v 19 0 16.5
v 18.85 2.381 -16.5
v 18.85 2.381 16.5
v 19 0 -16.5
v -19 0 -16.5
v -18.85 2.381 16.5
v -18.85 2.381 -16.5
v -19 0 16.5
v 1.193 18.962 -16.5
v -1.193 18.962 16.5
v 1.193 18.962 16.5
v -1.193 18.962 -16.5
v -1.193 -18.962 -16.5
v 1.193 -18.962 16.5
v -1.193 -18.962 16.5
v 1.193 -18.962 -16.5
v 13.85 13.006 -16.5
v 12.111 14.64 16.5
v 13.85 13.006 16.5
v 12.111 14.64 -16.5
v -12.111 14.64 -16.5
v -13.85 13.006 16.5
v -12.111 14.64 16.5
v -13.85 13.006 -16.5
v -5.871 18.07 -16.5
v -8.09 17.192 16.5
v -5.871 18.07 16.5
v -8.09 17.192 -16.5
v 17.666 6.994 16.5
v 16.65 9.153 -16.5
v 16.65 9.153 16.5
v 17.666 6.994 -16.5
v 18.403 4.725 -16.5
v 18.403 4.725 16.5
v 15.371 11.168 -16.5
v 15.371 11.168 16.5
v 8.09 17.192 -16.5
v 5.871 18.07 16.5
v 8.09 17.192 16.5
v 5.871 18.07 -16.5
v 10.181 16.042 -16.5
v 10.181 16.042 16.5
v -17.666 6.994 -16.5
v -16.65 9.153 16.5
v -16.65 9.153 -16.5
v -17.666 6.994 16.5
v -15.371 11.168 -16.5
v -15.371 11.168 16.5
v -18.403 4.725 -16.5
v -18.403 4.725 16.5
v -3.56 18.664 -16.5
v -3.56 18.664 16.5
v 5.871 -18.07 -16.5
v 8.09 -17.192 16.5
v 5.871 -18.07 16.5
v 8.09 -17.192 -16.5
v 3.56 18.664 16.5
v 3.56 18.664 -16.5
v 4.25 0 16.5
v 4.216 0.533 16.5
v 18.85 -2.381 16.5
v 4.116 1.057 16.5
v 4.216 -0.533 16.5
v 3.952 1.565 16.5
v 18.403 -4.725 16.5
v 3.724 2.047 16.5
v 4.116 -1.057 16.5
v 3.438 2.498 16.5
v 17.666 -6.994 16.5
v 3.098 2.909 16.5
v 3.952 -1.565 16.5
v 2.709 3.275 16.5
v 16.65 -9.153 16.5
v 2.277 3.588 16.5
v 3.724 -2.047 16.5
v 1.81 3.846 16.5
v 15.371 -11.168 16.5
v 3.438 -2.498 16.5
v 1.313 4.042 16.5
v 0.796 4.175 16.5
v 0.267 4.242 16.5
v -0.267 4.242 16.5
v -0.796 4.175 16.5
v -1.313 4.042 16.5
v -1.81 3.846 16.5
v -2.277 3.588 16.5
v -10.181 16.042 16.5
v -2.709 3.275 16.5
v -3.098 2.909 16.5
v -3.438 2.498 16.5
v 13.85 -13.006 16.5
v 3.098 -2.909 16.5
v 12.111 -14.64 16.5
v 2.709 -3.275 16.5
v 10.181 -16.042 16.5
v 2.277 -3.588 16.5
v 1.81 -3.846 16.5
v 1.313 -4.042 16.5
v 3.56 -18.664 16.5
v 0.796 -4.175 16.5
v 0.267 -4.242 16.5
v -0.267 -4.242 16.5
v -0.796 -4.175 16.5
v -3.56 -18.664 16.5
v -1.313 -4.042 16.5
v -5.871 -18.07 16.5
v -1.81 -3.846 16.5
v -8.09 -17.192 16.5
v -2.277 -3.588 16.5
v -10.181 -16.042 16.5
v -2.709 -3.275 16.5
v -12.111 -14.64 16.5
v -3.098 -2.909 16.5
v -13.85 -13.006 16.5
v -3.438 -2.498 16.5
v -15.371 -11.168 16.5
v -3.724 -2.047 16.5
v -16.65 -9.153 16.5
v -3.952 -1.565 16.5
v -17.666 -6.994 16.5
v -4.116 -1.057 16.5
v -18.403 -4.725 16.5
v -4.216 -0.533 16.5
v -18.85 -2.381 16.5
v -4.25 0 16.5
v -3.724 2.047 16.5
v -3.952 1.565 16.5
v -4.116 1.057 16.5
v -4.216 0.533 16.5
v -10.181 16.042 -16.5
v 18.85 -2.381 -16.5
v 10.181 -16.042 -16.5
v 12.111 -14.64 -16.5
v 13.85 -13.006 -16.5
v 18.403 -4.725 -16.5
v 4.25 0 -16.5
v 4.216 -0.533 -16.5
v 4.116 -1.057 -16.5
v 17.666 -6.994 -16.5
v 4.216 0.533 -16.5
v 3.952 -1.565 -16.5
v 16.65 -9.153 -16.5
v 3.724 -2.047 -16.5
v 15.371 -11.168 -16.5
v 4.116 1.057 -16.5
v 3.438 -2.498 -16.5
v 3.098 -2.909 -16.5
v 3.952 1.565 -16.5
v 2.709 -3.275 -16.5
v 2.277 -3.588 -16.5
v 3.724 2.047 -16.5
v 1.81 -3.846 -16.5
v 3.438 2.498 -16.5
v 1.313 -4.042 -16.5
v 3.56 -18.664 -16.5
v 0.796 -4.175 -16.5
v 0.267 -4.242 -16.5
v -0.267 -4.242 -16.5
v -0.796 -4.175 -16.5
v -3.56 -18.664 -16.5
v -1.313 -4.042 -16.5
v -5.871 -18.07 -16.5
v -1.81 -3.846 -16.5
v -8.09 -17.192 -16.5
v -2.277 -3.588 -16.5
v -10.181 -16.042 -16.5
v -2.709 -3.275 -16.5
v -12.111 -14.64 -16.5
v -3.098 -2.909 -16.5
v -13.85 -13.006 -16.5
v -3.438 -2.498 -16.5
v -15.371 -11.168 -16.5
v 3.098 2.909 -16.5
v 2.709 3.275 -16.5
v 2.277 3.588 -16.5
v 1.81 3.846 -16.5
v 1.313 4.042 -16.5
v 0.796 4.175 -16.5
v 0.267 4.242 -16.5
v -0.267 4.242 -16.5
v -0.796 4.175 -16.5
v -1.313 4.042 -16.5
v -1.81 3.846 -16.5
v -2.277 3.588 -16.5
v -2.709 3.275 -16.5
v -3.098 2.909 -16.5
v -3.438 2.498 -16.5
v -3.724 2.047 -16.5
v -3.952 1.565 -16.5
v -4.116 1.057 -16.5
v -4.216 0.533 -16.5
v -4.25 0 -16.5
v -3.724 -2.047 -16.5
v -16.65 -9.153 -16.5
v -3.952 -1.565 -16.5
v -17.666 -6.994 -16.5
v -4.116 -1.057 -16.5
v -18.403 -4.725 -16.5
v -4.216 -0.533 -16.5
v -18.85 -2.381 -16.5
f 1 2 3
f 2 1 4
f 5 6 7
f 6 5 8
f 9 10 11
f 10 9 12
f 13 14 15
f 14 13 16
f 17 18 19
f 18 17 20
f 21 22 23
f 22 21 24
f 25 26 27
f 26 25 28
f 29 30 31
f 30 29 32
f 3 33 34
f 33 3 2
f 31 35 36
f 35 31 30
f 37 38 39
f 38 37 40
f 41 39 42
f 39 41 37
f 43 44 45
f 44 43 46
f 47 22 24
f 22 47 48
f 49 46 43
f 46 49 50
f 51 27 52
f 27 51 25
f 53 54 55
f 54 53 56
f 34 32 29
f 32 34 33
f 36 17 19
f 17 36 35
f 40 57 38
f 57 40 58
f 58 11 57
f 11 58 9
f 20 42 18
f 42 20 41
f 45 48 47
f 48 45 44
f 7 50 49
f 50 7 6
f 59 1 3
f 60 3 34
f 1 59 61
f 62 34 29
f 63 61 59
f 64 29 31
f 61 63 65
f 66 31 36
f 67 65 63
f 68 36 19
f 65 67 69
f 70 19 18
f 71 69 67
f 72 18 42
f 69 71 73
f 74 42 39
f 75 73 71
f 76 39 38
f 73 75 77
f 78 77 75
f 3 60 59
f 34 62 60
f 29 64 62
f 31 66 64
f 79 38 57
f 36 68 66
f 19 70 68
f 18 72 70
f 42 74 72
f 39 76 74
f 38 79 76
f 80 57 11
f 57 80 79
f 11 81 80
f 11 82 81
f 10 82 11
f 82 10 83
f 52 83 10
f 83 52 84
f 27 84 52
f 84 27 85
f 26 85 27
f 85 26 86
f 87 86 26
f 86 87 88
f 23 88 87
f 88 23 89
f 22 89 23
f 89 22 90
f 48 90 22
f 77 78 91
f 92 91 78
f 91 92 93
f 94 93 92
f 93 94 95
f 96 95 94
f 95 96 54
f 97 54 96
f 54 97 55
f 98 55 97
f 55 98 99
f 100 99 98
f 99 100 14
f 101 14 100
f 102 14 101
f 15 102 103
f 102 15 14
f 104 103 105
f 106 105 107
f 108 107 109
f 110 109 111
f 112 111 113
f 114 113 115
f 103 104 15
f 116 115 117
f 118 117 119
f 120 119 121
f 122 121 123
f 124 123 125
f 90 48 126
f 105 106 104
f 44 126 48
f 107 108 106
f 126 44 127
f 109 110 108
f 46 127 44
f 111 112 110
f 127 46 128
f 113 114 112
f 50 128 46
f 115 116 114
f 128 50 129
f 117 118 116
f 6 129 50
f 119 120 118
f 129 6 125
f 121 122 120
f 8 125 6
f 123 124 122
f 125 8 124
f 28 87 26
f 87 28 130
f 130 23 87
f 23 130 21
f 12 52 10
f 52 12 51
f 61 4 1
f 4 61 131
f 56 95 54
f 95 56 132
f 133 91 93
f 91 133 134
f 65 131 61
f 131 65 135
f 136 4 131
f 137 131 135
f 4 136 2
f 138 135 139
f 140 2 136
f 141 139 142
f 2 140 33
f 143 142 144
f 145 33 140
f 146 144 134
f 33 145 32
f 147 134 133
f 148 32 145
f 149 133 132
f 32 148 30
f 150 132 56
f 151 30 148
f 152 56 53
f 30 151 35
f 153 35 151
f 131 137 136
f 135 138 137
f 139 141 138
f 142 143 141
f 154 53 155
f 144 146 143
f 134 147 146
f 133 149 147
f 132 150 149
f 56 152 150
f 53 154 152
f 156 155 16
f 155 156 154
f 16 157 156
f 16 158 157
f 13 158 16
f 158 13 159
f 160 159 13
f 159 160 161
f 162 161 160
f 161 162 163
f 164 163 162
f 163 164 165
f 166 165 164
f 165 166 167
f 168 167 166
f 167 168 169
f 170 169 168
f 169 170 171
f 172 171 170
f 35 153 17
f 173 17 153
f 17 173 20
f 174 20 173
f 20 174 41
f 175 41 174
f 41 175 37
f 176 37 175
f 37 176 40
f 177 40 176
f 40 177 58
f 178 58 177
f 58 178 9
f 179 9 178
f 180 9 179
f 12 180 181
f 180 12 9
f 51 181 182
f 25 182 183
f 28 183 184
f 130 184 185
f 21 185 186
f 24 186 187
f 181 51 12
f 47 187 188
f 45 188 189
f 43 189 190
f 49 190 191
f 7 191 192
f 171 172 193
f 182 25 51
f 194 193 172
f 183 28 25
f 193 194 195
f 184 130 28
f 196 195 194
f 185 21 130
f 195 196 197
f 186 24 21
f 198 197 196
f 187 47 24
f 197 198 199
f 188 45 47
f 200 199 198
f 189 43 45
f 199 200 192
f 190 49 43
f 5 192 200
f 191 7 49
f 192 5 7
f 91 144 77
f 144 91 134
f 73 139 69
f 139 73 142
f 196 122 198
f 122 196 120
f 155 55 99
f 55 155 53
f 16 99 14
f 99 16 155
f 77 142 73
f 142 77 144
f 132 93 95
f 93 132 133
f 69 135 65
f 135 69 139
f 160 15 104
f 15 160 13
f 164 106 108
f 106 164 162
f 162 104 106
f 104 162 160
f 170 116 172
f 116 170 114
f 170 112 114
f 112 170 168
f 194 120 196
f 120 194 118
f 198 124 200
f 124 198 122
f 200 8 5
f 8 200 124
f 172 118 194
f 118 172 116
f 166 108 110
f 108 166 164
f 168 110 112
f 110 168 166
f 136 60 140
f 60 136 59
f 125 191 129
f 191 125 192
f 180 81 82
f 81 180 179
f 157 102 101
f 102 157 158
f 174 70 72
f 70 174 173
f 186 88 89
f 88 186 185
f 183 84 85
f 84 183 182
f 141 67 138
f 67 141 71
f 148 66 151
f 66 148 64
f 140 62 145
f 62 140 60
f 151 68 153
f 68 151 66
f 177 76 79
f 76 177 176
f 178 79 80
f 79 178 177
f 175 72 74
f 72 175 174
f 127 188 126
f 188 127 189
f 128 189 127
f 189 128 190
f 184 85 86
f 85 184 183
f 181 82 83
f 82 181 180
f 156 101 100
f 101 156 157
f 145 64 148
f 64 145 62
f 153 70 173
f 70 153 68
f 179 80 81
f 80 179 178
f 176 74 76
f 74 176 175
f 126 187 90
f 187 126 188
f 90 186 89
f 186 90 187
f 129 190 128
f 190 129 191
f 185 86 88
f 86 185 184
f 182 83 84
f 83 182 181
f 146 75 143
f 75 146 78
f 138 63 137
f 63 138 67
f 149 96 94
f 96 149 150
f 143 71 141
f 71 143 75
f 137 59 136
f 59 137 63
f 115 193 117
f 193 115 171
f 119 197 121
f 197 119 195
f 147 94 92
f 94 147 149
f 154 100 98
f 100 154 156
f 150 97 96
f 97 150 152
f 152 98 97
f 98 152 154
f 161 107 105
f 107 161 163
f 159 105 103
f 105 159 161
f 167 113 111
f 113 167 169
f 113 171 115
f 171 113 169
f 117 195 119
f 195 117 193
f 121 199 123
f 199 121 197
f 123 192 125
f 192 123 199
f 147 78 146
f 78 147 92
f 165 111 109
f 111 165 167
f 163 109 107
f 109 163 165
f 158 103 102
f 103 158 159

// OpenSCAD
$fn = 50;


difference() {
	union() {
		translate(v = [0, 0, -16.5000000000]) {
			cylinder(h = 33, r = 19.0000000000);
		}
	}
	union() {
		translate(v = [0, 0, -100.0000000000]) {
			cylinder(h = 200, r = 4.2500000000);
		}
	}
}
